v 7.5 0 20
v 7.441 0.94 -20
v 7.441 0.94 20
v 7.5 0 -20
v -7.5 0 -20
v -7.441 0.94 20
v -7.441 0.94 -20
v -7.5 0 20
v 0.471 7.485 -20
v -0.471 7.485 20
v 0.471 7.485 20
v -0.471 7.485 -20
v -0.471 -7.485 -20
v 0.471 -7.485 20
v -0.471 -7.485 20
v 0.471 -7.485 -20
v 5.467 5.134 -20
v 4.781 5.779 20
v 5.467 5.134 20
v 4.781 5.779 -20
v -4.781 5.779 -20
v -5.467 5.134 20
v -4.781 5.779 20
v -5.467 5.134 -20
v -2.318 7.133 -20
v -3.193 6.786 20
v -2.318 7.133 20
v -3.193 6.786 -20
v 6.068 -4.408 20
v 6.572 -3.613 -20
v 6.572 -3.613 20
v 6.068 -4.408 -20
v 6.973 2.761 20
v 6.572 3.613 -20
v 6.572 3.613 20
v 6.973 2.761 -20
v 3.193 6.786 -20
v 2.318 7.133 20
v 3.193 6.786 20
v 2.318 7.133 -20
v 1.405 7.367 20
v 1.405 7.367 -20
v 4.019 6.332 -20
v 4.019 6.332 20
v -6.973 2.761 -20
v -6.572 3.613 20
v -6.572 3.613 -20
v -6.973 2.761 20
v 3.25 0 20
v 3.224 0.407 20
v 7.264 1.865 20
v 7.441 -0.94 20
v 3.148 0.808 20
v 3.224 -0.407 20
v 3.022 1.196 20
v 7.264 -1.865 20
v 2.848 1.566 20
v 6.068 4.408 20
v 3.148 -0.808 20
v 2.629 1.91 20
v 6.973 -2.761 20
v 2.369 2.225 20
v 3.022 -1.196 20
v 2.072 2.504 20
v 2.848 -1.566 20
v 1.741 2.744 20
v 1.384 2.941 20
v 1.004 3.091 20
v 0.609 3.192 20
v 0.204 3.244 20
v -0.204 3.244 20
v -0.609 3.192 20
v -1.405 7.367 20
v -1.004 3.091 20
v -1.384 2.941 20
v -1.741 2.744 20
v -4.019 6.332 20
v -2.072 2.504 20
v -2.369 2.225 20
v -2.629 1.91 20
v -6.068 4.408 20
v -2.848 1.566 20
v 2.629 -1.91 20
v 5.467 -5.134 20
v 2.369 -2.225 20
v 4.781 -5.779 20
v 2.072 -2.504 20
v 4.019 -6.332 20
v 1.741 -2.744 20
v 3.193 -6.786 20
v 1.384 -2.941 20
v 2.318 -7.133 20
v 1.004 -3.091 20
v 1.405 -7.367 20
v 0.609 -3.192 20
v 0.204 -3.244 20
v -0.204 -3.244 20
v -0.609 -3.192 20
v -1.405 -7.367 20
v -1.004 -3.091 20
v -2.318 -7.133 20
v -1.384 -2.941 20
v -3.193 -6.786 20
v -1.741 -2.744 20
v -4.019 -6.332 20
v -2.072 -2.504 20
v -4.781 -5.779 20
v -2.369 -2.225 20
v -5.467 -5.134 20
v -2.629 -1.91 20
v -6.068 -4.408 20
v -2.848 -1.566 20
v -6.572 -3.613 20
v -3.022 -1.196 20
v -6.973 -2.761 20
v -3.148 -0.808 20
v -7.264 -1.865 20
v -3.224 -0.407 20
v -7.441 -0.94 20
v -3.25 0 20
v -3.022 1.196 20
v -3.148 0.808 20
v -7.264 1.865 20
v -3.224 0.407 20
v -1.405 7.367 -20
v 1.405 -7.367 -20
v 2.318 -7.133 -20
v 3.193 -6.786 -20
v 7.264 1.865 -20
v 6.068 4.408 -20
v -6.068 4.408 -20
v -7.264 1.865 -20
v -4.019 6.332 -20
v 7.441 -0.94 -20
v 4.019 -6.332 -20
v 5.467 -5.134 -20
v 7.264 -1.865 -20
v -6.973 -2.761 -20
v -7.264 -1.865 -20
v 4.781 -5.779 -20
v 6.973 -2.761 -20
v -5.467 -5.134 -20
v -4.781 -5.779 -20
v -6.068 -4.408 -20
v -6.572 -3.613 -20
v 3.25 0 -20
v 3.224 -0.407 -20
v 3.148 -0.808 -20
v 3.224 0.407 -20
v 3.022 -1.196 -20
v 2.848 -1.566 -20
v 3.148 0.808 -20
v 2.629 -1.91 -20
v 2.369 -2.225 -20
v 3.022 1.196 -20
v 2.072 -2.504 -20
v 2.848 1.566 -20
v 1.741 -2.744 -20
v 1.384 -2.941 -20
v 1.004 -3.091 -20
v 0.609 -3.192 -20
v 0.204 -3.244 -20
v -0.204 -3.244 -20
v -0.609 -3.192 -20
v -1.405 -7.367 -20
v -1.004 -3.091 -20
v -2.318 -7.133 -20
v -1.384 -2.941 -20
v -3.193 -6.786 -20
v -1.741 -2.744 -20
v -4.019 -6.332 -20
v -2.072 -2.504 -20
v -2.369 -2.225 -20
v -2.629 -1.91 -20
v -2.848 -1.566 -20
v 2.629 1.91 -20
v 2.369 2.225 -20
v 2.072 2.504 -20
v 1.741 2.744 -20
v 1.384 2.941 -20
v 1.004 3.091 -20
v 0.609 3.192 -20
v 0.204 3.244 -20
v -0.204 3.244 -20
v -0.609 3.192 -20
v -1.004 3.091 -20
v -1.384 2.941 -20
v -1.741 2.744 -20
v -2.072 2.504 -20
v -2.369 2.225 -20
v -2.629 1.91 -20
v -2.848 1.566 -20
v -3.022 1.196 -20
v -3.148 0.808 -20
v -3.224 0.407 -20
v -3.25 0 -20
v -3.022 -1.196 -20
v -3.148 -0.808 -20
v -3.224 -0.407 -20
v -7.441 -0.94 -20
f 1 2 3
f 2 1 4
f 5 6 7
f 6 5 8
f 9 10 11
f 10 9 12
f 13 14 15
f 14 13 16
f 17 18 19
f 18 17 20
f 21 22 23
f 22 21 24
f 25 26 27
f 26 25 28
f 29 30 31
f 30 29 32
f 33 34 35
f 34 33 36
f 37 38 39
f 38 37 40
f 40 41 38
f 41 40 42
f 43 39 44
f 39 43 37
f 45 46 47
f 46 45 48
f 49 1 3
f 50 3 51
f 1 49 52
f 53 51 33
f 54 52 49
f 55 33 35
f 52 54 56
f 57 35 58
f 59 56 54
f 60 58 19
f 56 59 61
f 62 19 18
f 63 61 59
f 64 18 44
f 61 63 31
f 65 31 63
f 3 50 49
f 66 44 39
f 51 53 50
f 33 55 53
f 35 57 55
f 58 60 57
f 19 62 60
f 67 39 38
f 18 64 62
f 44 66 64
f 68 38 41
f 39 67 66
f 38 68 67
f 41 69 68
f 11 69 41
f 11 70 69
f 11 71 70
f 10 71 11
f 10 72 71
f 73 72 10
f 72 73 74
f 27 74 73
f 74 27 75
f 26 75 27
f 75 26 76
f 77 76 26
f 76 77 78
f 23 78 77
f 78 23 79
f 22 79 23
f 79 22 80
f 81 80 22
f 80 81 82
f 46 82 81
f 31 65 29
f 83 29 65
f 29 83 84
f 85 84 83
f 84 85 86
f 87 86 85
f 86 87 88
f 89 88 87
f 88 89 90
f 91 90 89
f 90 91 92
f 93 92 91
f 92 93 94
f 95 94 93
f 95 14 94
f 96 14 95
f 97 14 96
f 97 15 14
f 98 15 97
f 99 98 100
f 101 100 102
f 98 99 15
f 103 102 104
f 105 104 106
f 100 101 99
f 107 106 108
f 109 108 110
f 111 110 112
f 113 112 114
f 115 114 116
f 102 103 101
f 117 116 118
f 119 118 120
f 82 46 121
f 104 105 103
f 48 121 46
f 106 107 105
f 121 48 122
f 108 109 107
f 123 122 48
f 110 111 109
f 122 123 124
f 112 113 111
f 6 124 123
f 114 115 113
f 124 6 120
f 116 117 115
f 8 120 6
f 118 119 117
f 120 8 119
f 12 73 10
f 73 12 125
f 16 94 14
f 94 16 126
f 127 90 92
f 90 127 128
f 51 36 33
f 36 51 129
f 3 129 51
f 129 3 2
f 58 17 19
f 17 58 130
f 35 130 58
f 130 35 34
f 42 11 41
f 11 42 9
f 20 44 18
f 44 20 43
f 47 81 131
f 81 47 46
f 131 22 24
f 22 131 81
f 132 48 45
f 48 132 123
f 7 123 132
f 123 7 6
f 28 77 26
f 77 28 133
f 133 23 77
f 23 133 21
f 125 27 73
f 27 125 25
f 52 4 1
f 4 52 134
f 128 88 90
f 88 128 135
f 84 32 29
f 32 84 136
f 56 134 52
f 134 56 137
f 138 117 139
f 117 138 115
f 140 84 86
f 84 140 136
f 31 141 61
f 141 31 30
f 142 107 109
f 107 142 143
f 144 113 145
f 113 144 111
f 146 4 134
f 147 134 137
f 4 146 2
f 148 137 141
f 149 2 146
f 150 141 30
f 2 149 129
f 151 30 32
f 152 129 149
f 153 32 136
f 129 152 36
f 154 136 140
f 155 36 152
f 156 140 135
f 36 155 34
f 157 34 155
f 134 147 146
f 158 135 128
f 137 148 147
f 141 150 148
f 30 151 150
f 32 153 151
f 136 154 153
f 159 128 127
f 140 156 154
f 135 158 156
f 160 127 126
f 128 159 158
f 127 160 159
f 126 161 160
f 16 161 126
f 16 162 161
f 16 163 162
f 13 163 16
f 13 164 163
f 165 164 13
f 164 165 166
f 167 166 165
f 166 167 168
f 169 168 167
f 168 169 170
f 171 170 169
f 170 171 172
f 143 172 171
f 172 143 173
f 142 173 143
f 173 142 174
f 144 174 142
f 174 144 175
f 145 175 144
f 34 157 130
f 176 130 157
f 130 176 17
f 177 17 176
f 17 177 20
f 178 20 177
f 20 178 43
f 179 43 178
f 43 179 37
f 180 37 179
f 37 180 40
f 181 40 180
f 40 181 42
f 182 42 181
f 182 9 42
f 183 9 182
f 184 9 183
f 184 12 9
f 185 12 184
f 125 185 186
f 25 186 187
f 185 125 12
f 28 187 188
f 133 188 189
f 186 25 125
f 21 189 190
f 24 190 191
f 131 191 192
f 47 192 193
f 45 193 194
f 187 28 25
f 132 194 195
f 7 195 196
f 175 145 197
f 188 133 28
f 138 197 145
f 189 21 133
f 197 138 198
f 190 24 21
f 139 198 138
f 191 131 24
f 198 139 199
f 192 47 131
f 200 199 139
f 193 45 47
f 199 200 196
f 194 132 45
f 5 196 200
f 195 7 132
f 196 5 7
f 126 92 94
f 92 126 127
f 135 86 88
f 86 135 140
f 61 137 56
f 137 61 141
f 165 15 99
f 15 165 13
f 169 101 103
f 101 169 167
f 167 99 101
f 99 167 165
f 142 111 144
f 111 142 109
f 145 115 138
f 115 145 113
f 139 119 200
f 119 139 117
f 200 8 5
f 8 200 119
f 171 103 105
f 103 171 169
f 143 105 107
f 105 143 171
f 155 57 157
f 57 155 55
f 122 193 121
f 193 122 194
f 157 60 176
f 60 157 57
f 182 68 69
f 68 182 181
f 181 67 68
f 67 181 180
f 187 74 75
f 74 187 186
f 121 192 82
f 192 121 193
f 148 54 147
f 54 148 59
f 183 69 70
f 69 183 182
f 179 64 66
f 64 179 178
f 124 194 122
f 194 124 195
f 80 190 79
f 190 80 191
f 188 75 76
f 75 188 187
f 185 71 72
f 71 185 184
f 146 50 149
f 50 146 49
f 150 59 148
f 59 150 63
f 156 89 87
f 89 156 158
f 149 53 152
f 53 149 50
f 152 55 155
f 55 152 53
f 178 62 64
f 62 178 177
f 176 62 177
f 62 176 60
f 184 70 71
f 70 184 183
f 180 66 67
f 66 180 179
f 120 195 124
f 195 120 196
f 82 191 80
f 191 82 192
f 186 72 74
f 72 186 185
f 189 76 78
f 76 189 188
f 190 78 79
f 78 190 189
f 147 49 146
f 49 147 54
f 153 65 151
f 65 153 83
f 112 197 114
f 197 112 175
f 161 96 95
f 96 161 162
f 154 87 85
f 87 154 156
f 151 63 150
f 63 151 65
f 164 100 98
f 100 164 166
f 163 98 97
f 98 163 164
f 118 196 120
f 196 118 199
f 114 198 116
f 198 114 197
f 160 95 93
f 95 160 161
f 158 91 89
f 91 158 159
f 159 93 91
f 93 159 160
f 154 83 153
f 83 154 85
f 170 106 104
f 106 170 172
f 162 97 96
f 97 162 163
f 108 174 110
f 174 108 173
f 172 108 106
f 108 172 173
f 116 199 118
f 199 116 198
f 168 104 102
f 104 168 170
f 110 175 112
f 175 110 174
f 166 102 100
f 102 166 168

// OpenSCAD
$fn = 50;


difference() {
	union() {
		translate(v = [0, 0, -20.0000000000]) {
			cylinder(h = 40, r = 7.5000000000);
		}
	}
	union() {
		translate(v = [0, 0, -100.0000000000]) {
			cylinder(h = 200, r = 3.2500000000);
		}
	}
}
